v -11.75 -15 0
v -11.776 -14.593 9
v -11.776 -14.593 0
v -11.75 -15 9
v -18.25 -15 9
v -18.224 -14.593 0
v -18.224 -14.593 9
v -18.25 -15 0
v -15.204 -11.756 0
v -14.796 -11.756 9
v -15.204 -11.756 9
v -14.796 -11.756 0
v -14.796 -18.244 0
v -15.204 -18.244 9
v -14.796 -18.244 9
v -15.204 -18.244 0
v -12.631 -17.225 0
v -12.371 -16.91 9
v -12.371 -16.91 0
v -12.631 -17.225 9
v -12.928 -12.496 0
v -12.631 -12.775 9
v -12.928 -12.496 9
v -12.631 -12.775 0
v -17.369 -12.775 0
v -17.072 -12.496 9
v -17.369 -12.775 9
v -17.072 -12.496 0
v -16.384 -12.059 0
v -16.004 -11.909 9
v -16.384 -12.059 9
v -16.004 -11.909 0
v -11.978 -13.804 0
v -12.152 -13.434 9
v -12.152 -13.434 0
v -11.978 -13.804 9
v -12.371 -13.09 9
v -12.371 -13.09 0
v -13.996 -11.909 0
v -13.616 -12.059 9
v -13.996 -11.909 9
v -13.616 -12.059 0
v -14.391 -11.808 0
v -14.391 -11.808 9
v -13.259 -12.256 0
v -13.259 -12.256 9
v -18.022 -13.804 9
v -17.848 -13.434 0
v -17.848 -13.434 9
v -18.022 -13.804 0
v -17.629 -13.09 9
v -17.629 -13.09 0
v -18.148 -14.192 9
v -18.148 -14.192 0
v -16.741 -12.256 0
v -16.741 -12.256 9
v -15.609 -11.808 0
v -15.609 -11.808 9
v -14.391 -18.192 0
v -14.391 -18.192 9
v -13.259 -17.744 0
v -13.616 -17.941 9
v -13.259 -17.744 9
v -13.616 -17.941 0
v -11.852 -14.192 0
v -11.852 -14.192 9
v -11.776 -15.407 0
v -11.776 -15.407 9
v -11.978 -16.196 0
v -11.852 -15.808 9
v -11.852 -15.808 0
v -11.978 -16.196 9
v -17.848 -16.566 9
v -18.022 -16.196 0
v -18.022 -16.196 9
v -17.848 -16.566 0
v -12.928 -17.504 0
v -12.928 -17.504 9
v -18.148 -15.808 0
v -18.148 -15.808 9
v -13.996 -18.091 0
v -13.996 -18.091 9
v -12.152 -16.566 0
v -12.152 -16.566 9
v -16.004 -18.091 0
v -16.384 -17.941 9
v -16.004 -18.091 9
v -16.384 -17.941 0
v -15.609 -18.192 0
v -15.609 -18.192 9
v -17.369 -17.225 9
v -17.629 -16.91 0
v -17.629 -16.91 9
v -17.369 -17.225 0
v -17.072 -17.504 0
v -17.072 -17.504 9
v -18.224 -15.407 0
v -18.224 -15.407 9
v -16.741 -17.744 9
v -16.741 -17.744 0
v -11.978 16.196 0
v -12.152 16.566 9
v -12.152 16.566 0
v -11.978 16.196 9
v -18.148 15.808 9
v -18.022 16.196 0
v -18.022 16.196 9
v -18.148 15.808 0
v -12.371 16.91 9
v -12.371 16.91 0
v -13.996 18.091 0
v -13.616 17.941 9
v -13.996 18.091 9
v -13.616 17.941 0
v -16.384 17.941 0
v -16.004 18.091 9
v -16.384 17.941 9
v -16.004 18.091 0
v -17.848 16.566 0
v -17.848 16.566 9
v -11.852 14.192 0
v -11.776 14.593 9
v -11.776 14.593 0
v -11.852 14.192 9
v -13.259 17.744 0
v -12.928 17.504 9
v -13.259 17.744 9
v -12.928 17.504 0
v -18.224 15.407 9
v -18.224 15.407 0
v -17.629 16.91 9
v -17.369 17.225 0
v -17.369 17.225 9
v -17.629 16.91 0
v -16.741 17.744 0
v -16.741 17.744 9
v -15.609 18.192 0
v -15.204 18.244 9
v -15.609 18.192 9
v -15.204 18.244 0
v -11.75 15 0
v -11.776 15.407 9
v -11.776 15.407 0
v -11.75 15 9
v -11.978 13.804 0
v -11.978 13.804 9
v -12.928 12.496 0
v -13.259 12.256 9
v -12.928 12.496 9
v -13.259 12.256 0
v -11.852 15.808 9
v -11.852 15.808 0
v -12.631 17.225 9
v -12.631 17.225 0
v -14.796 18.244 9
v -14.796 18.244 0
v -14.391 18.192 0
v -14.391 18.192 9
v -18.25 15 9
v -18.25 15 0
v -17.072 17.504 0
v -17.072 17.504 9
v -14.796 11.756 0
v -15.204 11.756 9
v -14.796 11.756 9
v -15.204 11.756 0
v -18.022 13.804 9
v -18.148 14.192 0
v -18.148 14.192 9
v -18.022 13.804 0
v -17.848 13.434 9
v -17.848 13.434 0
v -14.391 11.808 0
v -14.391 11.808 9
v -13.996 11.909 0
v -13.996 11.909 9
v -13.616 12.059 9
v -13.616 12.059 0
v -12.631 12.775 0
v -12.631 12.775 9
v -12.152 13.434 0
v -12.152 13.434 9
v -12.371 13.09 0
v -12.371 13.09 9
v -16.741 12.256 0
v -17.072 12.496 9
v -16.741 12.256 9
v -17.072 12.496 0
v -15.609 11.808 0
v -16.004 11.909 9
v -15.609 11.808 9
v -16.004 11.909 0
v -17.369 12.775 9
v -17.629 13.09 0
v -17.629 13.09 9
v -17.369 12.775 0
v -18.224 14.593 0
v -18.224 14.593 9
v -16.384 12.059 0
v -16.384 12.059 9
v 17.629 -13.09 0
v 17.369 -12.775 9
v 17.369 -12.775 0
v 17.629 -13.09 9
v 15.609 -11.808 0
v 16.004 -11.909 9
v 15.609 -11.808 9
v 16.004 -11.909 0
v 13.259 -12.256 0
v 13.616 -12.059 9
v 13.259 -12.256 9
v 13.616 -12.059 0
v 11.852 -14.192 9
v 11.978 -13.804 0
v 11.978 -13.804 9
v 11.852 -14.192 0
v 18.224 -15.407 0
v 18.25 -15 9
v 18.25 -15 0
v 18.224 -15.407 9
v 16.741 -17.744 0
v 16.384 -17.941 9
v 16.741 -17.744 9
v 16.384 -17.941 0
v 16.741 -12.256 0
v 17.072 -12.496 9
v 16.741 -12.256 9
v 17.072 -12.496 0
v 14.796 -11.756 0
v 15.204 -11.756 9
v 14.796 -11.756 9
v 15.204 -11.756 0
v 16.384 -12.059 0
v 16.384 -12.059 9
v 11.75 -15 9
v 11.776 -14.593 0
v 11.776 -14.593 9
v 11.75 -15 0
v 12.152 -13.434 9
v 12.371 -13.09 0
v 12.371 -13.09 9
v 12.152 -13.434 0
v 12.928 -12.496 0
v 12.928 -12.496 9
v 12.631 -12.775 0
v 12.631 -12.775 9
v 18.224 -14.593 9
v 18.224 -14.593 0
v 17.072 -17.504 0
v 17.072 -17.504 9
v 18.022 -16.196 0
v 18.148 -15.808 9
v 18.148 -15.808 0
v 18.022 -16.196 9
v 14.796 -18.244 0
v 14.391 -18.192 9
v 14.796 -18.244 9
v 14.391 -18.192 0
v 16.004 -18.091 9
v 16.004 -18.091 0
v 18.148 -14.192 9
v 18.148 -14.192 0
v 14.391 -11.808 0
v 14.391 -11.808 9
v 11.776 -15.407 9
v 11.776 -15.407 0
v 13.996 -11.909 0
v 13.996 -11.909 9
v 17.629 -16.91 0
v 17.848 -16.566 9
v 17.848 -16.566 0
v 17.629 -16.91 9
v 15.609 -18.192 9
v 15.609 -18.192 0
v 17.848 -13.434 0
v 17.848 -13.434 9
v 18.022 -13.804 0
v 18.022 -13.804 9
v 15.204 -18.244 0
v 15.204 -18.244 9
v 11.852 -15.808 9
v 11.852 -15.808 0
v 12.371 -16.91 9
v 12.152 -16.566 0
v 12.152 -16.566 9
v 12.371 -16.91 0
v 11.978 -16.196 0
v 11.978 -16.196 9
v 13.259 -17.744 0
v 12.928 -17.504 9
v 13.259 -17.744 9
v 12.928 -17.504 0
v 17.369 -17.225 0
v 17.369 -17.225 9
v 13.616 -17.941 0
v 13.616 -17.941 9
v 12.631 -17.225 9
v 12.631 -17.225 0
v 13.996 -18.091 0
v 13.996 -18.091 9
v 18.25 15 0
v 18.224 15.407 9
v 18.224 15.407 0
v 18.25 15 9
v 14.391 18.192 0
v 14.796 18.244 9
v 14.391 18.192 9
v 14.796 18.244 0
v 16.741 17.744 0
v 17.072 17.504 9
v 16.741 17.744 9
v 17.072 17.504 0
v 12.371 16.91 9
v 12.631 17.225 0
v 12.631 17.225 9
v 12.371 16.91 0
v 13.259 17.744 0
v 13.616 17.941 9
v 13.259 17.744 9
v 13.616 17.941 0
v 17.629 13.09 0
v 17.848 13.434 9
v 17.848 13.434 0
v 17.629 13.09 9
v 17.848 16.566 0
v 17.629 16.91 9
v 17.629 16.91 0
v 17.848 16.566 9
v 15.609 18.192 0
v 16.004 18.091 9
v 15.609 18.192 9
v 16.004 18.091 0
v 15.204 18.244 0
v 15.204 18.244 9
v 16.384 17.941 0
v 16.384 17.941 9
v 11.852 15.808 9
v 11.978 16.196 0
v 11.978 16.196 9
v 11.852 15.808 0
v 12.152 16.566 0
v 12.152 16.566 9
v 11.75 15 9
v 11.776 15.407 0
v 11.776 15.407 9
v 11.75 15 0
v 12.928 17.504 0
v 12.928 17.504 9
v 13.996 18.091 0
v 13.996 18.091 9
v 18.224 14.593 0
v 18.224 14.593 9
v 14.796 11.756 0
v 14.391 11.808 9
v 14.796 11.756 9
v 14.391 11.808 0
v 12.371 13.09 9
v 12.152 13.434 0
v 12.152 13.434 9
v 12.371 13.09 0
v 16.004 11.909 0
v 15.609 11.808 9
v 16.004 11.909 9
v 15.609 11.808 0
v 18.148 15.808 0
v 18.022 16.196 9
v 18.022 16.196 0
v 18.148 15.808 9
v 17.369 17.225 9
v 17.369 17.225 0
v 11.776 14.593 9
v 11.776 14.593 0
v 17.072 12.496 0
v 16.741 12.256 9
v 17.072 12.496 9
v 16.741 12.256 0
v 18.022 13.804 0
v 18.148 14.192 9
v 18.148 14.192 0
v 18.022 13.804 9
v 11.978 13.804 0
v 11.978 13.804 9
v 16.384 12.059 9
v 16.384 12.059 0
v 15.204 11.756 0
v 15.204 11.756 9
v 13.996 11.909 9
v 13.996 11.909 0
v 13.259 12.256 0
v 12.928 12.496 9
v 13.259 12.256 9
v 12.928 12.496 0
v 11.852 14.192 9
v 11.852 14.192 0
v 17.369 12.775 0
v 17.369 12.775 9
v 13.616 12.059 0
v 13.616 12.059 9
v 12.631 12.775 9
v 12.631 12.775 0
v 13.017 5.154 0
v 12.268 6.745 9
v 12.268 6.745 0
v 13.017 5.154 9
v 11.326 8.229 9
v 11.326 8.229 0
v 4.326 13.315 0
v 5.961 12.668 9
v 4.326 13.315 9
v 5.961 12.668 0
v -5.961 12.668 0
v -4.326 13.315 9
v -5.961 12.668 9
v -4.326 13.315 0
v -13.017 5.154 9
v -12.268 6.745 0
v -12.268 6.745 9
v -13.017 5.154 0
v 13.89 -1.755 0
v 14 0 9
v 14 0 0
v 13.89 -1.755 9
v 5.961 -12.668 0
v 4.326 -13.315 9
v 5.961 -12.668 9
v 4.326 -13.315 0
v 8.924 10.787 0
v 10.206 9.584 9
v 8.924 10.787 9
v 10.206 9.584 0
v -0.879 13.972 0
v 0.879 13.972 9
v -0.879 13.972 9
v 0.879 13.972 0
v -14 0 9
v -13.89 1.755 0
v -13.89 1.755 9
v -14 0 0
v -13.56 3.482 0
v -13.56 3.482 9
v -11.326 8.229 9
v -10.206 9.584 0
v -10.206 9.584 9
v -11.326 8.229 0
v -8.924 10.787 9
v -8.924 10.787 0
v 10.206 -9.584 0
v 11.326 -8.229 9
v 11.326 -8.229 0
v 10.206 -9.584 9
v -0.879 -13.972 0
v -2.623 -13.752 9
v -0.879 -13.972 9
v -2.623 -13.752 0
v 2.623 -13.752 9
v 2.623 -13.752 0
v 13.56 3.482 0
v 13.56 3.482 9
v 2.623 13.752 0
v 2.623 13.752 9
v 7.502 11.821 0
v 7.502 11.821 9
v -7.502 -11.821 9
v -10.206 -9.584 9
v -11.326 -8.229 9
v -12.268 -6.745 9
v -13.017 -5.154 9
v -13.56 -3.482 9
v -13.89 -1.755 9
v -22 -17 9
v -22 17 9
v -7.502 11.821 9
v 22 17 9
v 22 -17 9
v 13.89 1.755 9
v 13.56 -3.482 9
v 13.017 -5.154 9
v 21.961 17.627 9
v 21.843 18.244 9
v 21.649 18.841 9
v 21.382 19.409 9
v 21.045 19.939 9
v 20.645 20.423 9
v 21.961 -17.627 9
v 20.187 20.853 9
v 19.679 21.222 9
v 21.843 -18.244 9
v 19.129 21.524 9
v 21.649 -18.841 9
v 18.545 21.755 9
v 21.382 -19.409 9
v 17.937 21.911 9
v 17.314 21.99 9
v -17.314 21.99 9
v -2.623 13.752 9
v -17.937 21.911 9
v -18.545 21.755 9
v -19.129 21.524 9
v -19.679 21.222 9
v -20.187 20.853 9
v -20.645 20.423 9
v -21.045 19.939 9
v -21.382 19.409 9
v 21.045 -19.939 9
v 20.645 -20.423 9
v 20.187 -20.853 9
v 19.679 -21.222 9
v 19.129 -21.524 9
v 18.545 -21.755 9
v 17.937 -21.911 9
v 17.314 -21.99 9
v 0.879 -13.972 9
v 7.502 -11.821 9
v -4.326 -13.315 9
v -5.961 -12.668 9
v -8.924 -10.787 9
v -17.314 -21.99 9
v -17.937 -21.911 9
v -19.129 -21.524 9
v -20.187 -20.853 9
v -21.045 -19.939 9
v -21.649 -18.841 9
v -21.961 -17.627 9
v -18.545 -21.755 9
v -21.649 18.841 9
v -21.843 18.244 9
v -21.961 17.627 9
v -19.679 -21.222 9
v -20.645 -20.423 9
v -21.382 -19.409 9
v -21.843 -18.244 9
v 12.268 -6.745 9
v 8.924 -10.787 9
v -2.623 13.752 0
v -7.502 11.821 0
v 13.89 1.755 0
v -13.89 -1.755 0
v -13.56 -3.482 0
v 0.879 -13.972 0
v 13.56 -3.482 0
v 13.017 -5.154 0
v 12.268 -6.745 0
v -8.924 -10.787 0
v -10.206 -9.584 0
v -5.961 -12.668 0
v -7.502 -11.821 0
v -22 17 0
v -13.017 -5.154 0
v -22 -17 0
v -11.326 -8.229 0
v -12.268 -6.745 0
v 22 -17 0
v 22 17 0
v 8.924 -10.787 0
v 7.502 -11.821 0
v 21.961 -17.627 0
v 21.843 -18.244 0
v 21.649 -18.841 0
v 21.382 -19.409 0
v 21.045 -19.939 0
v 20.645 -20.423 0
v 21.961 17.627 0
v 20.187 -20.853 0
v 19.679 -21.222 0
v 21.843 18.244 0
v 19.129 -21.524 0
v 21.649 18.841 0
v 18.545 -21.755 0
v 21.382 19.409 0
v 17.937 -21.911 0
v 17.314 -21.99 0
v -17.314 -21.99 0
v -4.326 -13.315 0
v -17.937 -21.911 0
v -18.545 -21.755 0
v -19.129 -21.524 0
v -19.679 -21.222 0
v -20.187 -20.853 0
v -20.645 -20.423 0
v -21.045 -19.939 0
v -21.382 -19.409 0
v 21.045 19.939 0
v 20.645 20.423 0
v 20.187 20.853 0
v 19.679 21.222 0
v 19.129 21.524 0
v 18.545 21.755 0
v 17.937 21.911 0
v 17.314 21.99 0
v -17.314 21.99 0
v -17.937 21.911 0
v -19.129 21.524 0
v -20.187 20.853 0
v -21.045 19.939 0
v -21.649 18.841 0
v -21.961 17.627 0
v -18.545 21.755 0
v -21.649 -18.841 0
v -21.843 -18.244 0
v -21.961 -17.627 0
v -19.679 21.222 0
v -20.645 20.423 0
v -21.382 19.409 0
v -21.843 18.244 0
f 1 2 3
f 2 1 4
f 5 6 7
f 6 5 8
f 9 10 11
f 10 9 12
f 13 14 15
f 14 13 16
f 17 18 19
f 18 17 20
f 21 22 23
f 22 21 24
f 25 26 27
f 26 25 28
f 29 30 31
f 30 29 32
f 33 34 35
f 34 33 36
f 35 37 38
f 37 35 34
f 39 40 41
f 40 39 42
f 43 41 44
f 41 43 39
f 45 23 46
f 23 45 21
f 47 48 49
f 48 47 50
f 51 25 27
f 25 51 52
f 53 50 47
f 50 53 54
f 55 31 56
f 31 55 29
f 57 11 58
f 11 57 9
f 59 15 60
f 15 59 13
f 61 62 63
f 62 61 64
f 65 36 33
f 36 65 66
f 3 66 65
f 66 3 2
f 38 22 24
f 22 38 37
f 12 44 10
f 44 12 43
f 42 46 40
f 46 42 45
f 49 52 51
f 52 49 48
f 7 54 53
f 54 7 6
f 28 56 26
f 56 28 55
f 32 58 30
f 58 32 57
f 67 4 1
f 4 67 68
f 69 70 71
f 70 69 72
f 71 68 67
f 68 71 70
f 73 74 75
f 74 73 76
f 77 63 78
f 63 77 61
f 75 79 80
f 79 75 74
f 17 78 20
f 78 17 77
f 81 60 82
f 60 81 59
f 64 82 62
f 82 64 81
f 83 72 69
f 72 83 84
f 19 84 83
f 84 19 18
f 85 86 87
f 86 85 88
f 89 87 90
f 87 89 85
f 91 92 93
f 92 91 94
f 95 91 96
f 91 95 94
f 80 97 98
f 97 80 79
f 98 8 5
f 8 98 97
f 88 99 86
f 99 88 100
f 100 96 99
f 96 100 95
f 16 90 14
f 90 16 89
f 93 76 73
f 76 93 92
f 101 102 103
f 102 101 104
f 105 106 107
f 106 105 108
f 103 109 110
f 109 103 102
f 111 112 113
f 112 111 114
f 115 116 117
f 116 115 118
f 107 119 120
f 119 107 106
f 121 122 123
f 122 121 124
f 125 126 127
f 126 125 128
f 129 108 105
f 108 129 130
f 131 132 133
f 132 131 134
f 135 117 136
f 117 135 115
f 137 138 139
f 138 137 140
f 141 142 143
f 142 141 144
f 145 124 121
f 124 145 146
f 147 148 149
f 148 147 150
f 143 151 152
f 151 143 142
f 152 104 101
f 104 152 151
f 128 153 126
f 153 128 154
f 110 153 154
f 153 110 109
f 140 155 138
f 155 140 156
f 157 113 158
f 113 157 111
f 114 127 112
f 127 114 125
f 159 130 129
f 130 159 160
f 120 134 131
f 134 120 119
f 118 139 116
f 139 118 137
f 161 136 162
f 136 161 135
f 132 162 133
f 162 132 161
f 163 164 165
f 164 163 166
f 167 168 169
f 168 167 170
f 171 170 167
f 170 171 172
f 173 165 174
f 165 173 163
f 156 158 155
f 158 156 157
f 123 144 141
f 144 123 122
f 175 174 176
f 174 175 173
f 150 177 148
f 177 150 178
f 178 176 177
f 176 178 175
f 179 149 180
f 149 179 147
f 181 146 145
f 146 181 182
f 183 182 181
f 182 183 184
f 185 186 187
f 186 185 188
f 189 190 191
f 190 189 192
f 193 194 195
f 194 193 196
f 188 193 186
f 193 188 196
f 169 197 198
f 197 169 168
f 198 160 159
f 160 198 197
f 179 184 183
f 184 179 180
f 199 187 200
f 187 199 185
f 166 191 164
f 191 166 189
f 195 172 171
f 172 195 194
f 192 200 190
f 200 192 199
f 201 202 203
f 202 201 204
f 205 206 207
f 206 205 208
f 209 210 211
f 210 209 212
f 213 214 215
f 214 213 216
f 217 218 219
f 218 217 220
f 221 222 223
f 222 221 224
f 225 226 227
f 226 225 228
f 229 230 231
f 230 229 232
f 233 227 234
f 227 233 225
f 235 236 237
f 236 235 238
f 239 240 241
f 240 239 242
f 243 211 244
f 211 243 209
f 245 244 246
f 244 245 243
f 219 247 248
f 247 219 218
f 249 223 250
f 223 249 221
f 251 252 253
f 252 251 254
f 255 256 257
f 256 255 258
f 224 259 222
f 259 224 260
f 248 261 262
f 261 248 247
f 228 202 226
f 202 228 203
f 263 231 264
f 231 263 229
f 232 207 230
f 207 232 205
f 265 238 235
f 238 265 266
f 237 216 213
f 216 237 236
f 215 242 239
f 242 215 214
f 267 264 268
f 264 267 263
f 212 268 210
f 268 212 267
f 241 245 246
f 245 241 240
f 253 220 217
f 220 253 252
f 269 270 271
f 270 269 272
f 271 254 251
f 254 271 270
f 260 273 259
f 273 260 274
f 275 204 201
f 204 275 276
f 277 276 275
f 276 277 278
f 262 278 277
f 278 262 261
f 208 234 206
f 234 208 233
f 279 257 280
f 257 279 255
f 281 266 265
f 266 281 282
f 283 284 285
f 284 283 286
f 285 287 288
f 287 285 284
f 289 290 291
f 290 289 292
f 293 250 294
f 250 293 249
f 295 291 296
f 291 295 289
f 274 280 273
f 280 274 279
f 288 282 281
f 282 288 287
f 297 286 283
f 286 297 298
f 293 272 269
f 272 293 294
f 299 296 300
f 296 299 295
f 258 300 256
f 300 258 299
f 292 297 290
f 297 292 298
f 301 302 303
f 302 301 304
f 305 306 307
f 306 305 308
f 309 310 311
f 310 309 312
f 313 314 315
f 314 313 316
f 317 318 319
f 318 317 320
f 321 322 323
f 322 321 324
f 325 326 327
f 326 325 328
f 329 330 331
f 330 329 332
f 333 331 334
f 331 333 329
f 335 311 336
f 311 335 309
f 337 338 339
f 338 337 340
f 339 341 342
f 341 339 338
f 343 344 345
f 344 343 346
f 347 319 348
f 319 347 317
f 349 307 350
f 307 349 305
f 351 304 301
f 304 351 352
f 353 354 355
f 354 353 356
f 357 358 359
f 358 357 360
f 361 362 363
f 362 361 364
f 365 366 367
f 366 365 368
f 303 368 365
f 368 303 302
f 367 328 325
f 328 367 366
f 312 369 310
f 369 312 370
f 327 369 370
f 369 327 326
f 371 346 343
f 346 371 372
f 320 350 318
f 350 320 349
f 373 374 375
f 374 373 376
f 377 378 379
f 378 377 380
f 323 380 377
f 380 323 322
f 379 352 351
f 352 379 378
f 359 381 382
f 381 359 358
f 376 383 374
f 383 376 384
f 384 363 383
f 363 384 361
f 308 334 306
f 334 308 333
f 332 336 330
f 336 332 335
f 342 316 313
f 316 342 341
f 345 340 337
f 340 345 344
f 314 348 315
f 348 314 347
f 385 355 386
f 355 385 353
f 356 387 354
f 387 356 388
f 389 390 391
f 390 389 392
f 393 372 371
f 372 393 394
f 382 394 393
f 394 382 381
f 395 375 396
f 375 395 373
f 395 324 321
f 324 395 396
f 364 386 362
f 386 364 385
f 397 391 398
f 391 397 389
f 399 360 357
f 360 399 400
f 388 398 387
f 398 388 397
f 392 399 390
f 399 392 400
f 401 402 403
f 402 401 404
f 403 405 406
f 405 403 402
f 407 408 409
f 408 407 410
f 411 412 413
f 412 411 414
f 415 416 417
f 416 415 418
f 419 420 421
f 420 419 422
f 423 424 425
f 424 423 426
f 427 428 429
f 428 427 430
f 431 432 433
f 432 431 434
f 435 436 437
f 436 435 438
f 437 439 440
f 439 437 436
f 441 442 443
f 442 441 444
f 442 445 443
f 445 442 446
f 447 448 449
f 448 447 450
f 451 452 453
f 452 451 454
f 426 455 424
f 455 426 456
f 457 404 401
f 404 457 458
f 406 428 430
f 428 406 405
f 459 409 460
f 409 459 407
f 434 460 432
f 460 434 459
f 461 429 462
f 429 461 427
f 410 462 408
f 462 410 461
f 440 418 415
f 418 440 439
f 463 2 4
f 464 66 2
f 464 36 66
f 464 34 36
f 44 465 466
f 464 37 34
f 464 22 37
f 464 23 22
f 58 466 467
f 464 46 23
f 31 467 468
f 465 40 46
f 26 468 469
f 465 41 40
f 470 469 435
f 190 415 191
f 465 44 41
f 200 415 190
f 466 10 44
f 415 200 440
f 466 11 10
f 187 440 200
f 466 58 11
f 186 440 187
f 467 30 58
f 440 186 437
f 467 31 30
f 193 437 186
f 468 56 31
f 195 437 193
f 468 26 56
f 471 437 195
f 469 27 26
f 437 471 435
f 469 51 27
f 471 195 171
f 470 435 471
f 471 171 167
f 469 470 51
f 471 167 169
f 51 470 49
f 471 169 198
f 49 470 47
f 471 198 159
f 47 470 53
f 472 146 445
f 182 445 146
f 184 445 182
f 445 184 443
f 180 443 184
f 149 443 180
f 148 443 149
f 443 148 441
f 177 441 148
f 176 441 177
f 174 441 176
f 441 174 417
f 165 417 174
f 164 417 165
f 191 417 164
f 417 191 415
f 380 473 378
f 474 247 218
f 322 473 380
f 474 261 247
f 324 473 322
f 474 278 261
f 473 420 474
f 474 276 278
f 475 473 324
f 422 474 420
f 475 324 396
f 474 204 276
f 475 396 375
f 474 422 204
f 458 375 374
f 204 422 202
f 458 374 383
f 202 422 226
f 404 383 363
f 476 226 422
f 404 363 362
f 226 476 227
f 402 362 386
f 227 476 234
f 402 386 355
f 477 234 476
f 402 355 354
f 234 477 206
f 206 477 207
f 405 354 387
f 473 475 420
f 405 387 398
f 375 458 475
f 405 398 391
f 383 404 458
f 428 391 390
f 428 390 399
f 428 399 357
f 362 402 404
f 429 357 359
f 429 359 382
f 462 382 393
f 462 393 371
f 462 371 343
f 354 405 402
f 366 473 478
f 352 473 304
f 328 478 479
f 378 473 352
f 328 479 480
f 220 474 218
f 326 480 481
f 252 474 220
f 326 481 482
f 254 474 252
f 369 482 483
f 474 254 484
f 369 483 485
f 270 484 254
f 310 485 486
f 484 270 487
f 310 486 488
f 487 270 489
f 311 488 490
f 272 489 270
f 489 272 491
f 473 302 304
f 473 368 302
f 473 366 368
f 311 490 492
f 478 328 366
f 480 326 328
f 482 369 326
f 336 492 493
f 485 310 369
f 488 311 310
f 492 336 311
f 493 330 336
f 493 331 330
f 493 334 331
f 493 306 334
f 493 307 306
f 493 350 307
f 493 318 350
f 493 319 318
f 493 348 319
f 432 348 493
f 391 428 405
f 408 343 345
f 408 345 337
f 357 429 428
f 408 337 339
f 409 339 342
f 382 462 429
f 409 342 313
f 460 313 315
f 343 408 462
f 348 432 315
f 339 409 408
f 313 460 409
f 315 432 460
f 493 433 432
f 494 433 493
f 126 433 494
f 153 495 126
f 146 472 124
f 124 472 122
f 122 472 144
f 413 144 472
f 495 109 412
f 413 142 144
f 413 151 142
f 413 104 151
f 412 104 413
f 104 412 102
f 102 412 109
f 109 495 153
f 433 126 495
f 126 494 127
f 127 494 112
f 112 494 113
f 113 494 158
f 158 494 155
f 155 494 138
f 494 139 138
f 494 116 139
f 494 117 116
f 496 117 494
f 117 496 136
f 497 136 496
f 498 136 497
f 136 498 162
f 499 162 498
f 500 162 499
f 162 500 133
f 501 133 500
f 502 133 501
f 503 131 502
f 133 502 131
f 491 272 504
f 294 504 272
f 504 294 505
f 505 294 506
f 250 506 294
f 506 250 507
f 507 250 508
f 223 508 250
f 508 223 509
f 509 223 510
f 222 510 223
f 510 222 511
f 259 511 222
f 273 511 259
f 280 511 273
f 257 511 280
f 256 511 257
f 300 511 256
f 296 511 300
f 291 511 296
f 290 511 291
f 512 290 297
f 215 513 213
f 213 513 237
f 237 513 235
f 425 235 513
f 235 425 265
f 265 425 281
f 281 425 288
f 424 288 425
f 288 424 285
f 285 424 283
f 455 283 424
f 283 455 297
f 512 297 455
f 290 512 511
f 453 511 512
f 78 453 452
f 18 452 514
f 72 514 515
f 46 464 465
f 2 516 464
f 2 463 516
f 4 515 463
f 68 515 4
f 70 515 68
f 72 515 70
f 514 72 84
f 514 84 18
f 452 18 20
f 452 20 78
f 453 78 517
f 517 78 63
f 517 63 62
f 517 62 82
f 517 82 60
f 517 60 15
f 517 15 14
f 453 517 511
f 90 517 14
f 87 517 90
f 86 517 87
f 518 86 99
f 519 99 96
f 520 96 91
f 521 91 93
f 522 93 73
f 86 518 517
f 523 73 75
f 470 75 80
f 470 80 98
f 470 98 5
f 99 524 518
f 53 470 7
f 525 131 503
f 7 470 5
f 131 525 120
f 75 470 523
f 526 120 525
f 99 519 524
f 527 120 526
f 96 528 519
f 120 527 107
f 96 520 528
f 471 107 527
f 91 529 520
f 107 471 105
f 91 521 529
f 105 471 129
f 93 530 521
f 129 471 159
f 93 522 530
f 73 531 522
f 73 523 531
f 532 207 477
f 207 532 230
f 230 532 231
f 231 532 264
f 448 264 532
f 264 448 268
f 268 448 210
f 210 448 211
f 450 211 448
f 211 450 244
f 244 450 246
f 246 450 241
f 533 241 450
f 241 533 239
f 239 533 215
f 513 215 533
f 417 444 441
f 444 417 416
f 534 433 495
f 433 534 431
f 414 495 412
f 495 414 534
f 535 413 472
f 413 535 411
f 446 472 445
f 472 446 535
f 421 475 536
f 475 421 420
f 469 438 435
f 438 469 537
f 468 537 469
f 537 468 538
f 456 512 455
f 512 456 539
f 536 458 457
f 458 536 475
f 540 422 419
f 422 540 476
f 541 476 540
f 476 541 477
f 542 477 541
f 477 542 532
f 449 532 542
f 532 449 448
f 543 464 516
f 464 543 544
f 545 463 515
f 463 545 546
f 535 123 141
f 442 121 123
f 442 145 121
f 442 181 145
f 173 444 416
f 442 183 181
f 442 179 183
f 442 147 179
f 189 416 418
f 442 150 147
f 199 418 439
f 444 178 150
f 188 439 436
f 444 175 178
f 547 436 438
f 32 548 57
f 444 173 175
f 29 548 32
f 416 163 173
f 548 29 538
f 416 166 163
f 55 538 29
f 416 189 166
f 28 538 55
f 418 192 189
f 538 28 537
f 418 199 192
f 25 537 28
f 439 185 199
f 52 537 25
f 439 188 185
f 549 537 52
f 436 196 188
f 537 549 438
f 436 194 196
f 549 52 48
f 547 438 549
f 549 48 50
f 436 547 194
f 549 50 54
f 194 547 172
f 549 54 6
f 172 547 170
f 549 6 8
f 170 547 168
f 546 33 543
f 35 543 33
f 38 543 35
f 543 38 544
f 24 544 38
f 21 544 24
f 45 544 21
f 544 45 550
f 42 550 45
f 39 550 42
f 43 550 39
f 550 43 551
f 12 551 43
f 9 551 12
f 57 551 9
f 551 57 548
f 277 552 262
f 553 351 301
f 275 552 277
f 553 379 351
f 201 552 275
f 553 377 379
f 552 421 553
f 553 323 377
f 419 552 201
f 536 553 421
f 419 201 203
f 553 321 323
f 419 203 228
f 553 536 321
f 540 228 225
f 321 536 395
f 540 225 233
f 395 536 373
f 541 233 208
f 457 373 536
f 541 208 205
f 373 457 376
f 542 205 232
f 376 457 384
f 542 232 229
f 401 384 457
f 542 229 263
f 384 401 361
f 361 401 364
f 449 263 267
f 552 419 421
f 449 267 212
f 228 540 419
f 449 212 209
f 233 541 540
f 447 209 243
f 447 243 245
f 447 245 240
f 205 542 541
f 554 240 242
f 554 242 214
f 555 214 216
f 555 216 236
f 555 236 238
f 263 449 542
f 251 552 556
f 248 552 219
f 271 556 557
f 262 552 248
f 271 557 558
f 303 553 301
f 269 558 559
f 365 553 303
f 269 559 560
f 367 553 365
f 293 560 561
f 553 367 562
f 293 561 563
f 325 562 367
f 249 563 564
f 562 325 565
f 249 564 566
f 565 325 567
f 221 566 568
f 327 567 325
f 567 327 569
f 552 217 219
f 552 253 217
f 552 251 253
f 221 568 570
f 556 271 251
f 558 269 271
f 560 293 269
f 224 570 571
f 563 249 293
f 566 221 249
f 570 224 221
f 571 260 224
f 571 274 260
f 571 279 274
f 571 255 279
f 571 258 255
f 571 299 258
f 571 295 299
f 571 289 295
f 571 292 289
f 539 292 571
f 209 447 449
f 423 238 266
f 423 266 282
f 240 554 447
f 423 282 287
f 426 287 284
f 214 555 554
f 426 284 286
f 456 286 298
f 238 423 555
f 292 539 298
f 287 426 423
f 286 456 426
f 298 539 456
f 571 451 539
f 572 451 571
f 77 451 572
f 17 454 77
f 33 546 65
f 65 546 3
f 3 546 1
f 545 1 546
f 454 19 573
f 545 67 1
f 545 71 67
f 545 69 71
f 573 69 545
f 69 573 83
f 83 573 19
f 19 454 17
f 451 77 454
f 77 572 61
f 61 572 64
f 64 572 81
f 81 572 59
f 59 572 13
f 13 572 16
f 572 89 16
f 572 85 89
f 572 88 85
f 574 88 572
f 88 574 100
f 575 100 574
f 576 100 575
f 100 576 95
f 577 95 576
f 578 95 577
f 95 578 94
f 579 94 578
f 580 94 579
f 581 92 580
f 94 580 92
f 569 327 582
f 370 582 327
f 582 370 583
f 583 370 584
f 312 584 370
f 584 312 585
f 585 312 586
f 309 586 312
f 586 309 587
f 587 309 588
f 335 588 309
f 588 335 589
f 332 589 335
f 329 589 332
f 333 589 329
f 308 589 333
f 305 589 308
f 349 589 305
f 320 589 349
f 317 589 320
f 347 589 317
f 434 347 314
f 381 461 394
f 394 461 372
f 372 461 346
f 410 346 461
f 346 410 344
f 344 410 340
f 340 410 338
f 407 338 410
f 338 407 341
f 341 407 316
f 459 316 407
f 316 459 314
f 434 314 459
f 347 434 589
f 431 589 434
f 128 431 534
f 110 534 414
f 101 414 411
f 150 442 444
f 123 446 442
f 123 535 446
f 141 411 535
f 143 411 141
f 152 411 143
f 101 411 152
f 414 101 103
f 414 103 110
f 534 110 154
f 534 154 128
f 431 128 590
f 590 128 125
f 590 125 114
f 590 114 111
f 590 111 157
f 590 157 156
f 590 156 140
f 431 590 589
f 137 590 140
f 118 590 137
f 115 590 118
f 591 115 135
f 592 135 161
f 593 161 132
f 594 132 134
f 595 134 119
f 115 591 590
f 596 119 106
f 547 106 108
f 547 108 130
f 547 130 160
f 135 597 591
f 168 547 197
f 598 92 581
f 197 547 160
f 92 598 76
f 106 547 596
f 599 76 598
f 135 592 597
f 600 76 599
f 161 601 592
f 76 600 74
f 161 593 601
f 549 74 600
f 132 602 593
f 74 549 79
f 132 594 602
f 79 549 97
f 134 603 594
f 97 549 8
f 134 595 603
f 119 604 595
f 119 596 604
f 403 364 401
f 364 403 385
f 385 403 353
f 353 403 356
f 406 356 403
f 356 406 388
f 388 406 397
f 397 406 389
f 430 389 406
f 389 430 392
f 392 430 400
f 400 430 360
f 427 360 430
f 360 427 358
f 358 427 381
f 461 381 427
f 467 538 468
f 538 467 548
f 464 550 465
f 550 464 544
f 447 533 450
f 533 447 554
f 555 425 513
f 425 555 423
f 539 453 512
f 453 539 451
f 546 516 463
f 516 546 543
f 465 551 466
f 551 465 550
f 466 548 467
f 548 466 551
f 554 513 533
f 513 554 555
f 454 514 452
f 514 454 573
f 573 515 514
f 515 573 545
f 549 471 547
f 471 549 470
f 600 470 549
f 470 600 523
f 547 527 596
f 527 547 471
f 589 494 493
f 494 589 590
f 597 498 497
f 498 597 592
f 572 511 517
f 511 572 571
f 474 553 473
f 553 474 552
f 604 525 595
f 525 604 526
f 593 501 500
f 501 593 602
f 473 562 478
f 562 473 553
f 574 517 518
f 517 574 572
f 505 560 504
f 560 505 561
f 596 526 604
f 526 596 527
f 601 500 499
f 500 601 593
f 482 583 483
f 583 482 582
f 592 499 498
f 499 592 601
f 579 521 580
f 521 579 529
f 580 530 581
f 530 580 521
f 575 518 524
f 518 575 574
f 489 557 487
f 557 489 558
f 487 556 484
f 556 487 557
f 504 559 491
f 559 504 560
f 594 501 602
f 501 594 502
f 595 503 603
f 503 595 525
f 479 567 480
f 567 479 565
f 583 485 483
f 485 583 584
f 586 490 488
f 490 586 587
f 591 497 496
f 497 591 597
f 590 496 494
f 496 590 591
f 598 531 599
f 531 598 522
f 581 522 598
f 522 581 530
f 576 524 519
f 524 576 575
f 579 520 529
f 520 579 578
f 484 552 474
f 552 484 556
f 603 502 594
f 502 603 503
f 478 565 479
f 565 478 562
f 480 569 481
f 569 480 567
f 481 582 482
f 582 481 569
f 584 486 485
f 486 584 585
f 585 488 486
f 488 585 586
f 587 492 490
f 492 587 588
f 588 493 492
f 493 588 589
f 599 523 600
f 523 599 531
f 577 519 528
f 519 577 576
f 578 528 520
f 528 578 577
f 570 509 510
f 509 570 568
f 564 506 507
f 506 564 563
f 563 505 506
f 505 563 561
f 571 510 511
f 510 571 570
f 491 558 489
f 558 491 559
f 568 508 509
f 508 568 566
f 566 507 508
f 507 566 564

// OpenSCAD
$fn = 50;


difference() {
	union() {
		hull() {
			translate(v = [-17.0000000000, 17.0000000000, 0]) {
				cylinder(h = 9, r = 5);
			}
			translate(v = [17.0000000000, 17.0000000000, 0]) {
				cylinder(h = 9, r = 5);
			}
			translate(v = [-17.0000000000, -17.0000000000, 0]) {
				cylinder(h = 9, r = 5);
			}
			translate(v = [17.0000000000, -17.0000000000, 0]) {
				cylinder(h = 9, r = 5);
			}
		}
	}
	union() {
		#translate(v = [-15.0000000000, -15.0000000000, -100.0000000000]) {
			cylinder(h = 200, r = 3.2500000000);
		}
		#translate(v = [-15.0000000000, 15.0000000000, -100.0000000000]) {
			cylinder(h = 200, r = 3.2500000000);
		}
		#translate(v = [15.0000000000, -15.0000000000, -100.0000000000]) {
			cylinder(h = 200, r = 3.2500000000);
		}
		#translate(v = [15.0000000000, 15.0000000000, -100.0000000000]) {
			cylinder(h = 200, r = 3.2500000000);
		}
		#cylinder(h = 9, r = 14.0000000000);
	}
}
